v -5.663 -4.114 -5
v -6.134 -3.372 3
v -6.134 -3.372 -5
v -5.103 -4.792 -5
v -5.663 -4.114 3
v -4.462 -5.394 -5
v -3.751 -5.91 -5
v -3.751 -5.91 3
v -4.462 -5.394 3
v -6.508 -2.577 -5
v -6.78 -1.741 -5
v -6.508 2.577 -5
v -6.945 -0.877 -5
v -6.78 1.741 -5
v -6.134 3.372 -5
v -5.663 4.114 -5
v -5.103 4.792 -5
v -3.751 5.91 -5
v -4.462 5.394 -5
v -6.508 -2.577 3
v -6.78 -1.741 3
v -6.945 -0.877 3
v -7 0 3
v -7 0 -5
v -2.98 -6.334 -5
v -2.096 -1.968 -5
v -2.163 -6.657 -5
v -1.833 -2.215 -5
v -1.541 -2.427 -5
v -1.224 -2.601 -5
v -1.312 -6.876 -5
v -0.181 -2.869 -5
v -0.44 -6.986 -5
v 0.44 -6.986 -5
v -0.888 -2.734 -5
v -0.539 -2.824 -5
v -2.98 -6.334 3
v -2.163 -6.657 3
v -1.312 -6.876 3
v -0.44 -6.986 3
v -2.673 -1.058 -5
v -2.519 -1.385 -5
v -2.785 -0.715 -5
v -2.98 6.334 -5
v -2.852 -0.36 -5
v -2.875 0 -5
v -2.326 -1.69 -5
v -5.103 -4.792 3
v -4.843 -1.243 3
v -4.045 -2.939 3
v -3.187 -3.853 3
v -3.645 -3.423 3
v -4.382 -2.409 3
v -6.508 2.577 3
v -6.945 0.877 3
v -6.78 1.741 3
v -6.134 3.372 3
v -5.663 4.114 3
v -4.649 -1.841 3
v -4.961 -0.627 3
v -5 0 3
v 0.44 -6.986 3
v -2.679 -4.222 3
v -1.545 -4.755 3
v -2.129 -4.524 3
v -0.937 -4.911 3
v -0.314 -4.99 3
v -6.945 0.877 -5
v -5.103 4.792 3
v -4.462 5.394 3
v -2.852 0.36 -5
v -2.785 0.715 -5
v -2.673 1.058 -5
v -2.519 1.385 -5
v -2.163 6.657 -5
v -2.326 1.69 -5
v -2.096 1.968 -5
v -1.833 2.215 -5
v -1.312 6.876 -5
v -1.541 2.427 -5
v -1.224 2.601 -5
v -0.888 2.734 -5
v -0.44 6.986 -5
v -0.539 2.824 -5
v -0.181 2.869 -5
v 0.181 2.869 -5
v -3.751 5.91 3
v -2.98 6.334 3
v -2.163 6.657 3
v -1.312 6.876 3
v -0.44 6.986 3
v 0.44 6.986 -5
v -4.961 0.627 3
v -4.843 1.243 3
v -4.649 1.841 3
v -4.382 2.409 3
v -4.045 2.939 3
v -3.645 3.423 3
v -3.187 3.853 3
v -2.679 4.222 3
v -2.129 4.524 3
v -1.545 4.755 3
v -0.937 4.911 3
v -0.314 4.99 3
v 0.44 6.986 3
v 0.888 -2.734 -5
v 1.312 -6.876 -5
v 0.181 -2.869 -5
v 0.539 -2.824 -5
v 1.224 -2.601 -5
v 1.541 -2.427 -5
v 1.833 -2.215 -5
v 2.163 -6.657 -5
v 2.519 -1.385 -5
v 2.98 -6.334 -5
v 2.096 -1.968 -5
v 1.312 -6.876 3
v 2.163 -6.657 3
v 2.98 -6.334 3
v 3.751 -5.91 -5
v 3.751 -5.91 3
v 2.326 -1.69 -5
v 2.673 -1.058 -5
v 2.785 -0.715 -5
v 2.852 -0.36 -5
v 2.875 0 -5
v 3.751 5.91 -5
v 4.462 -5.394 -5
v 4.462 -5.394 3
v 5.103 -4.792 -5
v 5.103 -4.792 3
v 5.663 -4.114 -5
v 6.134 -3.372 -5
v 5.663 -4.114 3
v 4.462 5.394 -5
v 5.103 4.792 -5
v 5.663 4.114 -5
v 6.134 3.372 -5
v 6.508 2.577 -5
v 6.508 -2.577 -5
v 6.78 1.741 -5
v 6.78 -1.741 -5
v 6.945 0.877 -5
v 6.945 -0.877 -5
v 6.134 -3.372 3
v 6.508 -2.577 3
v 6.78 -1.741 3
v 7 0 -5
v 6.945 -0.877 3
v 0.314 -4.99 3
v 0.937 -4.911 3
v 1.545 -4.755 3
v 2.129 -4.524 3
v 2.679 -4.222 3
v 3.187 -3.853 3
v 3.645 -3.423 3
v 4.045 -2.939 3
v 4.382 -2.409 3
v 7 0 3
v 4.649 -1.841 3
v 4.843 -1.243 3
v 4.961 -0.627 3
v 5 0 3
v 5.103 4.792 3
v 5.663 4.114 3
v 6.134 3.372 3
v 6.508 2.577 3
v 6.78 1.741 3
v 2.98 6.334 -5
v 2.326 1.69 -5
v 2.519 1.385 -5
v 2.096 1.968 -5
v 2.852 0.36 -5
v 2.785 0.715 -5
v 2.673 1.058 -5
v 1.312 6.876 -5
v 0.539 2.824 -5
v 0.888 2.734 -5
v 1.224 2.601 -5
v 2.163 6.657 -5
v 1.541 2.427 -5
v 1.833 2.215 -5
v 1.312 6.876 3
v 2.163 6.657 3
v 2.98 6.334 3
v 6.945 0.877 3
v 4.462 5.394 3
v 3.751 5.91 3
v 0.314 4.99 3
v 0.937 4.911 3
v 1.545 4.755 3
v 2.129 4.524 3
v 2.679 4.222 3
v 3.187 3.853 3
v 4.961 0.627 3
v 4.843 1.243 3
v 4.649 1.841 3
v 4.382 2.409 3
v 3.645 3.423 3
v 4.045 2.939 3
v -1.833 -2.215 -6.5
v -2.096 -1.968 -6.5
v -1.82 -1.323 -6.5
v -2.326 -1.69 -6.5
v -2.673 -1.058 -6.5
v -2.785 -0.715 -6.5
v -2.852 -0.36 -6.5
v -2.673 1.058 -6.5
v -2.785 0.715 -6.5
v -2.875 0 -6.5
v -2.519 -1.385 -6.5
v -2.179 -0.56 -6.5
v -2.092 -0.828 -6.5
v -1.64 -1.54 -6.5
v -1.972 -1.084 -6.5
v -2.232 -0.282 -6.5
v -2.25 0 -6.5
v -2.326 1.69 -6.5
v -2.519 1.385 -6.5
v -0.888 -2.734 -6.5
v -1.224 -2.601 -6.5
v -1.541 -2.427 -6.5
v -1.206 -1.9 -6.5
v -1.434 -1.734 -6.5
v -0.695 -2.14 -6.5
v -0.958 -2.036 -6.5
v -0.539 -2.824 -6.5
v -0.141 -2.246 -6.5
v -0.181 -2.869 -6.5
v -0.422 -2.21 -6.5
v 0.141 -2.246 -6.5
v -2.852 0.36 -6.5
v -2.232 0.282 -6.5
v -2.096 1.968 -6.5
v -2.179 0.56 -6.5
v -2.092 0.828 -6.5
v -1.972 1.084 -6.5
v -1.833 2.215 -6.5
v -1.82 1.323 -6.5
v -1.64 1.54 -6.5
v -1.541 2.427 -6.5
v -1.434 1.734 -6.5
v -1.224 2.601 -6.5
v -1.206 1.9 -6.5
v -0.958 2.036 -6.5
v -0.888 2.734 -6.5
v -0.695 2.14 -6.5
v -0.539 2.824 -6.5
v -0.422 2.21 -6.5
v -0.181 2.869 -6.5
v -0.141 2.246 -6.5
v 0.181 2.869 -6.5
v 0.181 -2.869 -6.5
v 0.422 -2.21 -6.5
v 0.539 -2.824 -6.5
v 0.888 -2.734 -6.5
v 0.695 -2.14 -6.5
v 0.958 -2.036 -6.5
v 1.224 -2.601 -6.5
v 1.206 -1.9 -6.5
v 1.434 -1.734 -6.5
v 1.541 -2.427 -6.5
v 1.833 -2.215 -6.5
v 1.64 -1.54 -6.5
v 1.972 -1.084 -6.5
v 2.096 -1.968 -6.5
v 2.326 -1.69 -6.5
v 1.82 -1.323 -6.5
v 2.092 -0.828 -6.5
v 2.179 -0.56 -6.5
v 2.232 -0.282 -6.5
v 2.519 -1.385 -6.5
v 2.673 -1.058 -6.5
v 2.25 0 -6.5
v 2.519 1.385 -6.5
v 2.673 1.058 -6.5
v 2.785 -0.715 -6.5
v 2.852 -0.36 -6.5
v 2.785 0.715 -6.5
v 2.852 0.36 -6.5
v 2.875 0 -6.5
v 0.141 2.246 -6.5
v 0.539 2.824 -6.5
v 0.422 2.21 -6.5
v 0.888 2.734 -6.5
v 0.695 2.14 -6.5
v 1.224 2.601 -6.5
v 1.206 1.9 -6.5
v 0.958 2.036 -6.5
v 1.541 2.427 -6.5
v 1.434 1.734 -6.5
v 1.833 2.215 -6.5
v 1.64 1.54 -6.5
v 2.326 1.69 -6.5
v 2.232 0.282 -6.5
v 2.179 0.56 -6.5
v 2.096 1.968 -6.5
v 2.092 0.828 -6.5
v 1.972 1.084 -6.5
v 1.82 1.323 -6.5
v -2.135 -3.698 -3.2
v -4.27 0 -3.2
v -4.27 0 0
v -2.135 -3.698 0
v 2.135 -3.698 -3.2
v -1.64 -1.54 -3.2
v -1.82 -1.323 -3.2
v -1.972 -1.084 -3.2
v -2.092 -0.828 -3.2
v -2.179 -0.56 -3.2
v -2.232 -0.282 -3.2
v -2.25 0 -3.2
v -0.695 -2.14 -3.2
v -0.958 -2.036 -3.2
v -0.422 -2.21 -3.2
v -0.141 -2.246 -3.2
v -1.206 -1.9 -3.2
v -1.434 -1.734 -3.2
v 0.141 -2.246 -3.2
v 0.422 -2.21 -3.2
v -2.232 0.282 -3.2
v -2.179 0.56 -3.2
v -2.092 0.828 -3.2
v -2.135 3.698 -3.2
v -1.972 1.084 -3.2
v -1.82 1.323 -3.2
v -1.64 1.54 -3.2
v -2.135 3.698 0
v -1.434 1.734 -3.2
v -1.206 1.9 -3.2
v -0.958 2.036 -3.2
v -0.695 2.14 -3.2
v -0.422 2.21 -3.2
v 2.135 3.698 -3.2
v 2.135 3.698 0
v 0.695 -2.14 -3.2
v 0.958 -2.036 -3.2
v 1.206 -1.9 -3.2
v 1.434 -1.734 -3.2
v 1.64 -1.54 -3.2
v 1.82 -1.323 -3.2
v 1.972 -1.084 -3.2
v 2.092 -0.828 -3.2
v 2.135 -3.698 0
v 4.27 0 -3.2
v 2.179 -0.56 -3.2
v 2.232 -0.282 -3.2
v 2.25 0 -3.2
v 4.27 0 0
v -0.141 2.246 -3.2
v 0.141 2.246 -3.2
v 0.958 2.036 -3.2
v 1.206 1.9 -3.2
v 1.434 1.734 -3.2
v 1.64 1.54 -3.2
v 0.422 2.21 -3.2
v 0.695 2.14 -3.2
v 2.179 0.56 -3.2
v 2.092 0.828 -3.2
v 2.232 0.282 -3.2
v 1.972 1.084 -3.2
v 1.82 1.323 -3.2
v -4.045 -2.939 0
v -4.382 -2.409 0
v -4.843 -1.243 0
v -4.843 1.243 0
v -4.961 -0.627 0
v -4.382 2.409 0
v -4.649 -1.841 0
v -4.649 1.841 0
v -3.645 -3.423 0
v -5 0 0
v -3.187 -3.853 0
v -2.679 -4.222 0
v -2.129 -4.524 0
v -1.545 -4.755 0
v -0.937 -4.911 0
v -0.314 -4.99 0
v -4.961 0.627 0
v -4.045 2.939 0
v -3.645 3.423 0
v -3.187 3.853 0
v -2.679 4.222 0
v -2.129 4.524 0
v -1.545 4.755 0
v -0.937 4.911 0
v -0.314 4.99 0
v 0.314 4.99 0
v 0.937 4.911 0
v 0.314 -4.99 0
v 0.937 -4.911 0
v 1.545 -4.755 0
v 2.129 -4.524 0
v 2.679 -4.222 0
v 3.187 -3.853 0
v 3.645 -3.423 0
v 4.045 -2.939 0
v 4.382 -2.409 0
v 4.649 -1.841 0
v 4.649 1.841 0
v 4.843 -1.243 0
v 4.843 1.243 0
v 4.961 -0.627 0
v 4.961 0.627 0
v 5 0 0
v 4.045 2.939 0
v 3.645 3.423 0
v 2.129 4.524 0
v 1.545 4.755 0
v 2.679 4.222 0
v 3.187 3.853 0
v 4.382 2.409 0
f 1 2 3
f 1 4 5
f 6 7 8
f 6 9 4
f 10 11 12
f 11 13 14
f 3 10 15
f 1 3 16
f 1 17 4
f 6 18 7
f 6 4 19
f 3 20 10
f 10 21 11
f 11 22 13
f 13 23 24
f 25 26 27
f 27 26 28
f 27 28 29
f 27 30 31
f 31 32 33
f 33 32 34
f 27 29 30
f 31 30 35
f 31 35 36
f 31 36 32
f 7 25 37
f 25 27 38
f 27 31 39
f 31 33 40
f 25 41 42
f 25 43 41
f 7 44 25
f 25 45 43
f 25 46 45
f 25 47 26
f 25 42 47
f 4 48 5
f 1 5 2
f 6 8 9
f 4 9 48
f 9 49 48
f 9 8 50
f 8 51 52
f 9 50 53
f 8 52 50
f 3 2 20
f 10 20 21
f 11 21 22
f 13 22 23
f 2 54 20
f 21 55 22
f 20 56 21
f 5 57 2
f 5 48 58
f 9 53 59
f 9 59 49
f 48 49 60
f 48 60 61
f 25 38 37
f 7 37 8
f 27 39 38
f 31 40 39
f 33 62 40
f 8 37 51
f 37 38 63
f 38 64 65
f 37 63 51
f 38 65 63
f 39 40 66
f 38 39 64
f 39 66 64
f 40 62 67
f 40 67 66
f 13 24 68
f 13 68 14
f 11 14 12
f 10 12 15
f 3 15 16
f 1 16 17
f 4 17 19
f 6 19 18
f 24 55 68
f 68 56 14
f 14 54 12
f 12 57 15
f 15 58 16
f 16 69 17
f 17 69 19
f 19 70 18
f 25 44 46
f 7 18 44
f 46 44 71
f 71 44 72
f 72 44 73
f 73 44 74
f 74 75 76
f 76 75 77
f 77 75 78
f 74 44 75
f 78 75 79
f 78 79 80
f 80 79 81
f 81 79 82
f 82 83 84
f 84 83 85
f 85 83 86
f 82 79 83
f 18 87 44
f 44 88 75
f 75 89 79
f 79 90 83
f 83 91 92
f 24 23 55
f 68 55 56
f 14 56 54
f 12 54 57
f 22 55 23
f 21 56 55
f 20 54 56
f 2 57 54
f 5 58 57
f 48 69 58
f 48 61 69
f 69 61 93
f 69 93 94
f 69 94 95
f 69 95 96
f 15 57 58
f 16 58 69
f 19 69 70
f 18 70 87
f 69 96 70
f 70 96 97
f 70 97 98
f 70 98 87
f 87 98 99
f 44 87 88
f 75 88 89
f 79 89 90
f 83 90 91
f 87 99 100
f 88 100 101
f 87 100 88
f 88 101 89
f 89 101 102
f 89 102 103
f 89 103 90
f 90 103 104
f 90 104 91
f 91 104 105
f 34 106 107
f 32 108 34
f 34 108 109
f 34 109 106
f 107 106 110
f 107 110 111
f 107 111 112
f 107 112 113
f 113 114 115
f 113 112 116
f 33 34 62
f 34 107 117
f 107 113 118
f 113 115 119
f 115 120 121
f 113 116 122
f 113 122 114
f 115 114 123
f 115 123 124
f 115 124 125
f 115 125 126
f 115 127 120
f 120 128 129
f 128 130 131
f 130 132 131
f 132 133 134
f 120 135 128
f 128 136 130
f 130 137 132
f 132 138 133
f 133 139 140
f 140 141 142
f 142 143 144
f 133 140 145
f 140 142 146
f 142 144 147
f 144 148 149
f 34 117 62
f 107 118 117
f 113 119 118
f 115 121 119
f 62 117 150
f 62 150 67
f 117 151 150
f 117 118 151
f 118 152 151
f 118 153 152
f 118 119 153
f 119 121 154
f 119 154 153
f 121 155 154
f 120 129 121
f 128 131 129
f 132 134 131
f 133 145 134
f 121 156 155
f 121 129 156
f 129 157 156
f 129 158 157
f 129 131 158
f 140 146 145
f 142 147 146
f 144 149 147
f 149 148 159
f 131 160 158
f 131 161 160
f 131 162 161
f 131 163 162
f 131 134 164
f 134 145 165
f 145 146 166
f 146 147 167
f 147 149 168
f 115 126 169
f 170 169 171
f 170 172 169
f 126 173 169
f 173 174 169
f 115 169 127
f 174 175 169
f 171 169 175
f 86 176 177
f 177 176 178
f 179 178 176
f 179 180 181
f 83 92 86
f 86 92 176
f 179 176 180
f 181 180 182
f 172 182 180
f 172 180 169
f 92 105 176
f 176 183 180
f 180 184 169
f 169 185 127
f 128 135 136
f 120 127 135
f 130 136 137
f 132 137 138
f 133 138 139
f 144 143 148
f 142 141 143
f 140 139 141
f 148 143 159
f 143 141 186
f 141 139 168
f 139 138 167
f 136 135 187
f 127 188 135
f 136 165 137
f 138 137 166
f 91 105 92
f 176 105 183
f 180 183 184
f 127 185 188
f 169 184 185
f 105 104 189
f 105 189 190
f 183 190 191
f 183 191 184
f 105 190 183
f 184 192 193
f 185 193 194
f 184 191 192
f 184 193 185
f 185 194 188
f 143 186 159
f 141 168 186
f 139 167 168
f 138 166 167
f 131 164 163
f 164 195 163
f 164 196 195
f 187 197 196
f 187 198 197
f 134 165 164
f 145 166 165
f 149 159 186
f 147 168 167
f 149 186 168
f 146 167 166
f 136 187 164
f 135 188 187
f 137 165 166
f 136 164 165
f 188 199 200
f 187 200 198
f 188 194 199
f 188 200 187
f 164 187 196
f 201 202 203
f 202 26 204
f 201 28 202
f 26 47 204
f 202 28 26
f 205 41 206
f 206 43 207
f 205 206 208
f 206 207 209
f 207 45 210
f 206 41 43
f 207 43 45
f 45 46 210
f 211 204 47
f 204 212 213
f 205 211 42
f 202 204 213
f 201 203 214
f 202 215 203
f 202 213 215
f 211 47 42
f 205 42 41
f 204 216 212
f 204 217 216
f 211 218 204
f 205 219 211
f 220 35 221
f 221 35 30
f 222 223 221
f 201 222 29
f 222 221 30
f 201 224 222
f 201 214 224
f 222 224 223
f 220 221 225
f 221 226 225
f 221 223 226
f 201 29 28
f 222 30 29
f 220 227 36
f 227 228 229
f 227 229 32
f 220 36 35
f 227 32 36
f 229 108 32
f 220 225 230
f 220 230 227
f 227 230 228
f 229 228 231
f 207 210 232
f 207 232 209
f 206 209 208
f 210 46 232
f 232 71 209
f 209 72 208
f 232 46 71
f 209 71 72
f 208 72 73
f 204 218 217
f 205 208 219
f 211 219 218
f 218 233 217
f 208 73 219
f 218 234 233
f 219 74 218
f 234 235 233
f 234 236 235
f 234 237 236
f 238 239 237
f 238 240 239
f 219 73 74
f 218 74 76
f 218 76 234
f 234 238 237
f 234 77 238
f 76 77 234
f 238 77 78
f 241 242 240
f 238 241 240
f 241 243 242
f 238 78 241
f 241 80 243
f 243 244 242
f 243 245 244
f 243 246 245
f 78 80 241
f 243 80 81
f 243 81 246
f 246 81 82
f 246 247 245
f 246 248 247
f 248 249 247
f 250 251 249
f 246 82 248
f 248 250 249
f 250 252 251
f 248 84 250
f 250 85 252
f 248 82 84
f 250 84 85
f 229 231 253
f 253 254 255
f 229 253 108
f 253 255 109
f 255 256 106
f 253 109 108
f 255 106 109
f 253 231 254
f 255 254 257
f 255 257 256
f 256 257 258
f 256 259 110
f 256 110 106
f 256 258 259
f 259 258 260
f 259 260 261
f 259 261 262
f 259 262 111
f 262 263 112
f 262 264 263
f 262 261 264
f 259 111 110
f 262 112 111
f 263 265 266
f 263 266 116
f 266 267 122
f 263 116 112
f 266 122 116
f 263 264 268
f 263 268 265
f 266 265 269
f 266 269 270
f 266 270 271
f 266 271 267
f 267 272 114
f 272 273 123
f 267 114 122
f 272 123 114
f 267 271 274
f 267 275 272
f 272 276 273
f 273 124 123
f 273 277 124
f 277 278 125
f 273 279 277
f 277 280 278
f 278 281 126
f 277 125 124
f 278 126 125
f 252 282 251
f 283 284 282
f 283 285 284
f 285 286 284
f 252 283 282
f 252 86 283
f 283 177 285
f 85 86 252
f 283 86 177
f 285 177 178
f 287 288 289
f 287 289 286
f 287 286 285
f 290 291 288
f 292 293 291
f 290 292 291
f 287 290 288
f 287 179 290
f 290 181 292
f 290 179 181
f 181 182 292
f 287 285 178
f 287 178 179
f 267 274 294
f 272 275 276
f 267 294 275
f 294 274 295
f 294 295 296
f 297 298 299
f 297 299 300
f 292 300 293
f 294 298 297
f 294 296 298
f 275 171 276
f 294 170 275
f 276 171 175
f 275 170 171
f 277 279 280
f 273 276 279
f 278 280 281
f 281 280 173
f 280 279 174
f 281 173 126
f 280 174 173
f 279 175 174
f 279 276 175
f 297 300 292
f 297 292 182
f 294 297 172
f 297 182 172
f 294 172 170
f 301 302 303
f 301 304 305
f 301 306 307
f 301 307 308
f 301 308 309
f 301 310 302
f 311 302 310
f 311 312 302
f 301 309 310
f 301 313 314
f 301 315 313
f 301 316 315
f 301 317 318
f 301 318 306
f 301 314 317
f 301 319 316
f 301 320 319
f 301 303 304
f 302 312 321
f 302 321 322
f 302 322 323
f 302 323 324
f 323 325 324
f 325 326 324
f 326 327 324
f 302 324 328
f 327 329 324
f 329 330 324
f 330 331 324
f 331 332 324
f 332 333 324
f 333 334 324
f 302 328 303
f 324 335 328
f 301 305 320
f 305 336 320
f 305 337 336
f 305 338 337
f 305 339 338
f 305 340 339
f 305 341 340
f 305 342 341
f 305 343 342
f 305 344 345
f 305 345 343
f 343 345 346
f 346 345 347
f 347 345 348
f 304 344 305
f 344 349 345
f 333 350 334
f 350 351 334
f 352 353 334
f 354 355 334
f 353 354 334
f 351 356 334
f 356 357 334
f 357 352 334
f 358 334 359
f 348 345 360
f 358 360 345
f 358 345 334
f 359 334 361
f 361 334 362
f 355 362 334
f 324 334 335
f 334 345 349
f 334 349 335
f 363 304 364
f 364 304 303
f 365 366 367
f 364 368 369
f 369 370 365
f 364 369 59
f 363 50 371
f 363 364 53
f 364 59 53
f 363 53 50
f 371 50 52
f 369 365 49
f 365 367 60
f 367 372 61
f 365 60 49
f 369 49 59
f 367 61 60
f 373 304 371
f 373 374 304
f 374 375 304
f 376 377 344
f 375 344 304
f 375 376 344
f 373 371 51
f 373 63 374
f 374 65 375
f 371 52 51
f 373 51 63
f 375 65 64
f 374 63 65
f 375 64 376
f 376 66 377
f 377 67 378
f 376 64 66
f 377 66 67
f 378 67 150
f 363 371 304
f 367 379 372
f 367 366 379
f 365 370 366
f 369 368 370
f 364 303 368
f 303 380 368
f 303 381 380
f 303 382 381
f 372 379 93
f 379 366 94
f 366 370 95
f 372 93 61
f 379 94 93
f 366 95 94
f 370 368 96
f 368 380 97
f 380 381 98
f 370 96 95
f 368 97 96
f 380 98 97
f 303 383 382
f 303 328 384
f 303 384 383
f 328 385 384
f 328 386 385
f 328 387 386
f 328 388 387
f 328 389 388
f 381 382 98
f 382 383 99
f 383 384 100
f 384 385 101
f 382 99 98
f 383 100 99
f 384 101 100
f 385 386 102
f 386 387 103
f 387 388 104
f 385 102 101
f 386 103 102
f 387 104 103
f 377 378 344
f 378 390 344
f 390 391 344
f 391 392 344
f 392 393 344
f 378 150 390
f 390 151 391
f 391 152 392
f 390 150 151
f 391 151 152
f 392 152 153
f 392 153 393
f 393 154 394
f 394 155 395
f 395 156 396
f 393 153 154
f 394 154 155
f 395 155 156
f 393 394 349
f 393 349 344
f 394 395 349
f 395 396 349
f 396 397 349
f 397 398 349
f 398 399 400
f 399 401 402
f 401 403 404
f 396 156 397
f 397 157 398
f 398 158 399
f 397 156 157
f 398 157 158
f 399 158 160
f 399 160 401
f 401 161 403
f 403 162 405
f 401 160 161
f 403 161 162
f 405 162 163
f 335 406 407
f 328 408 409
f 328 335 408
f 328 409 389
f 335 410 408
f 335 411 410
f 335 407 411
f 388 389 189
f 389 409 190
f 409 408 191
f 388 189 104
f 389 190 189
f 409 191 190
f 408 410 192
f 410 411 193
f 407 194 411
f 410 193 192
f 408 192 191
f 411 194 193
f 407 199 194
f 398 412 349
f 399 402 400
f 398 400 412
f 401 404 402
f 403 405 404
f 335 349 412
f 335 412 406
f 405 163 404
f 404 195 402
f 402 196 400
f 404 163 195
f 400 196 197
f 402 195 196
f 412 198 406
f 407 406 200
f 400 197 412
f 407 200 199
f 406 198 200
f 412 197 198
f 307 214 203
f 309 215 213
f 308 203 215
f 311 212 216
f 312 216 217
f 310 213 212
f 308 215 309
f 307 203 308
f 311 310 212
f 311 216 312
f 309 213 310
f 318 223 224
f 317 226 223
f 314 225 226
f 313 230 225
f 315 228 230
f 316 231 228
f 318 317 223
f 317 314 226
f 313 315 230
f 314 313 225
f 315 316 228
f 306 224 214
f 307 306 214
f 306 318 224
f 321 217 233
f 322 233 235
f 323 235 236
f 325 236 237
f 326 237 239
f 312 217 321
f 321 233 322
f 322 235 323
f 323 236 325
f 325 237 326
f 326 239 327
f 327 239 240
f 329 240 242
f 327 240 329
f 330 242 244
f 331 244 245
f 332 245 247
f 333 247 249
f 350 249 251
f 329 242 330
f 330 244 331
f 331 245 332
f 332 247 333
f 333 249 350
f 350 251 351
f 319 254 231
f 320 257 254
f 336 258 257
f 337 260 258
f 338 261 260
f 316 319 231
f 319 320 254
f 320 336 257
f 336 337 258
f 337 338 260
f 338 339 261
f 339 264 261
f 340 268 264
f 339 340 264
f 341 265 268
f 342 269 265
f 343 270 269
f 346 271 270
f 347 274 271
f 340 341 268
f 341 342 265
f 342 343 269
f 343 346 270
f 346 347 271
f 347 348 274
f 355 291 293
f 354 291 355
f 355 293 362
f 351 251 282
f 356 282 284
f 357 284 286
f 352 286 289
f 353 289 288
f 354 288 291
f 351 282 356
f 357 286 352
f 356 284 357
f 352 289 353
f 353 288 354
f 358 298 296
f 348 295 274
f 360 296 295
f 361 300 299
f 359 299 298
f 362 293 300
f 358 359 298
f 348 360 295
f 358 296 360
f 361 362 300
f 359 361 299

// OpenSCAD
$fn = 50;

difference() {
	union() {
		translate(v = [0, 0, -5.0]) {
			cylinder(h = 8.0, r = 7.0);
		}
		#translate(v = [0, 0, -6.5]) {
			cylinder(h = 6.5, r = 2.875);
		}
	}
	union() {
		translate(v = [0, 0, 0]) {
			rotate(a = [0, 0, 0]) {
				difference() {
					union() {
						translate(v = [0, 0, -3.2]) {
							linear_extrude(height = 3.2) {
								polygon(points = [[4.2698, 0.0], [2.1349000000000005, 3.697755269078796], [-2.134899999999999, 3.6977552690787965], [-4.2698, 5.228996902999369e-16], [-2.134900000000002, -3.6977552690787956], [2.1348999999999974, -3.697755269078798]]);
							}
						}
					}
					union();
				}
			}
		}
		#cylinder(h = 3, r = 5.0);
		#translate(v = [0, 0, -100.0]) {
			cylinder(h = 200, r = 2.25);
		}
	}
}
